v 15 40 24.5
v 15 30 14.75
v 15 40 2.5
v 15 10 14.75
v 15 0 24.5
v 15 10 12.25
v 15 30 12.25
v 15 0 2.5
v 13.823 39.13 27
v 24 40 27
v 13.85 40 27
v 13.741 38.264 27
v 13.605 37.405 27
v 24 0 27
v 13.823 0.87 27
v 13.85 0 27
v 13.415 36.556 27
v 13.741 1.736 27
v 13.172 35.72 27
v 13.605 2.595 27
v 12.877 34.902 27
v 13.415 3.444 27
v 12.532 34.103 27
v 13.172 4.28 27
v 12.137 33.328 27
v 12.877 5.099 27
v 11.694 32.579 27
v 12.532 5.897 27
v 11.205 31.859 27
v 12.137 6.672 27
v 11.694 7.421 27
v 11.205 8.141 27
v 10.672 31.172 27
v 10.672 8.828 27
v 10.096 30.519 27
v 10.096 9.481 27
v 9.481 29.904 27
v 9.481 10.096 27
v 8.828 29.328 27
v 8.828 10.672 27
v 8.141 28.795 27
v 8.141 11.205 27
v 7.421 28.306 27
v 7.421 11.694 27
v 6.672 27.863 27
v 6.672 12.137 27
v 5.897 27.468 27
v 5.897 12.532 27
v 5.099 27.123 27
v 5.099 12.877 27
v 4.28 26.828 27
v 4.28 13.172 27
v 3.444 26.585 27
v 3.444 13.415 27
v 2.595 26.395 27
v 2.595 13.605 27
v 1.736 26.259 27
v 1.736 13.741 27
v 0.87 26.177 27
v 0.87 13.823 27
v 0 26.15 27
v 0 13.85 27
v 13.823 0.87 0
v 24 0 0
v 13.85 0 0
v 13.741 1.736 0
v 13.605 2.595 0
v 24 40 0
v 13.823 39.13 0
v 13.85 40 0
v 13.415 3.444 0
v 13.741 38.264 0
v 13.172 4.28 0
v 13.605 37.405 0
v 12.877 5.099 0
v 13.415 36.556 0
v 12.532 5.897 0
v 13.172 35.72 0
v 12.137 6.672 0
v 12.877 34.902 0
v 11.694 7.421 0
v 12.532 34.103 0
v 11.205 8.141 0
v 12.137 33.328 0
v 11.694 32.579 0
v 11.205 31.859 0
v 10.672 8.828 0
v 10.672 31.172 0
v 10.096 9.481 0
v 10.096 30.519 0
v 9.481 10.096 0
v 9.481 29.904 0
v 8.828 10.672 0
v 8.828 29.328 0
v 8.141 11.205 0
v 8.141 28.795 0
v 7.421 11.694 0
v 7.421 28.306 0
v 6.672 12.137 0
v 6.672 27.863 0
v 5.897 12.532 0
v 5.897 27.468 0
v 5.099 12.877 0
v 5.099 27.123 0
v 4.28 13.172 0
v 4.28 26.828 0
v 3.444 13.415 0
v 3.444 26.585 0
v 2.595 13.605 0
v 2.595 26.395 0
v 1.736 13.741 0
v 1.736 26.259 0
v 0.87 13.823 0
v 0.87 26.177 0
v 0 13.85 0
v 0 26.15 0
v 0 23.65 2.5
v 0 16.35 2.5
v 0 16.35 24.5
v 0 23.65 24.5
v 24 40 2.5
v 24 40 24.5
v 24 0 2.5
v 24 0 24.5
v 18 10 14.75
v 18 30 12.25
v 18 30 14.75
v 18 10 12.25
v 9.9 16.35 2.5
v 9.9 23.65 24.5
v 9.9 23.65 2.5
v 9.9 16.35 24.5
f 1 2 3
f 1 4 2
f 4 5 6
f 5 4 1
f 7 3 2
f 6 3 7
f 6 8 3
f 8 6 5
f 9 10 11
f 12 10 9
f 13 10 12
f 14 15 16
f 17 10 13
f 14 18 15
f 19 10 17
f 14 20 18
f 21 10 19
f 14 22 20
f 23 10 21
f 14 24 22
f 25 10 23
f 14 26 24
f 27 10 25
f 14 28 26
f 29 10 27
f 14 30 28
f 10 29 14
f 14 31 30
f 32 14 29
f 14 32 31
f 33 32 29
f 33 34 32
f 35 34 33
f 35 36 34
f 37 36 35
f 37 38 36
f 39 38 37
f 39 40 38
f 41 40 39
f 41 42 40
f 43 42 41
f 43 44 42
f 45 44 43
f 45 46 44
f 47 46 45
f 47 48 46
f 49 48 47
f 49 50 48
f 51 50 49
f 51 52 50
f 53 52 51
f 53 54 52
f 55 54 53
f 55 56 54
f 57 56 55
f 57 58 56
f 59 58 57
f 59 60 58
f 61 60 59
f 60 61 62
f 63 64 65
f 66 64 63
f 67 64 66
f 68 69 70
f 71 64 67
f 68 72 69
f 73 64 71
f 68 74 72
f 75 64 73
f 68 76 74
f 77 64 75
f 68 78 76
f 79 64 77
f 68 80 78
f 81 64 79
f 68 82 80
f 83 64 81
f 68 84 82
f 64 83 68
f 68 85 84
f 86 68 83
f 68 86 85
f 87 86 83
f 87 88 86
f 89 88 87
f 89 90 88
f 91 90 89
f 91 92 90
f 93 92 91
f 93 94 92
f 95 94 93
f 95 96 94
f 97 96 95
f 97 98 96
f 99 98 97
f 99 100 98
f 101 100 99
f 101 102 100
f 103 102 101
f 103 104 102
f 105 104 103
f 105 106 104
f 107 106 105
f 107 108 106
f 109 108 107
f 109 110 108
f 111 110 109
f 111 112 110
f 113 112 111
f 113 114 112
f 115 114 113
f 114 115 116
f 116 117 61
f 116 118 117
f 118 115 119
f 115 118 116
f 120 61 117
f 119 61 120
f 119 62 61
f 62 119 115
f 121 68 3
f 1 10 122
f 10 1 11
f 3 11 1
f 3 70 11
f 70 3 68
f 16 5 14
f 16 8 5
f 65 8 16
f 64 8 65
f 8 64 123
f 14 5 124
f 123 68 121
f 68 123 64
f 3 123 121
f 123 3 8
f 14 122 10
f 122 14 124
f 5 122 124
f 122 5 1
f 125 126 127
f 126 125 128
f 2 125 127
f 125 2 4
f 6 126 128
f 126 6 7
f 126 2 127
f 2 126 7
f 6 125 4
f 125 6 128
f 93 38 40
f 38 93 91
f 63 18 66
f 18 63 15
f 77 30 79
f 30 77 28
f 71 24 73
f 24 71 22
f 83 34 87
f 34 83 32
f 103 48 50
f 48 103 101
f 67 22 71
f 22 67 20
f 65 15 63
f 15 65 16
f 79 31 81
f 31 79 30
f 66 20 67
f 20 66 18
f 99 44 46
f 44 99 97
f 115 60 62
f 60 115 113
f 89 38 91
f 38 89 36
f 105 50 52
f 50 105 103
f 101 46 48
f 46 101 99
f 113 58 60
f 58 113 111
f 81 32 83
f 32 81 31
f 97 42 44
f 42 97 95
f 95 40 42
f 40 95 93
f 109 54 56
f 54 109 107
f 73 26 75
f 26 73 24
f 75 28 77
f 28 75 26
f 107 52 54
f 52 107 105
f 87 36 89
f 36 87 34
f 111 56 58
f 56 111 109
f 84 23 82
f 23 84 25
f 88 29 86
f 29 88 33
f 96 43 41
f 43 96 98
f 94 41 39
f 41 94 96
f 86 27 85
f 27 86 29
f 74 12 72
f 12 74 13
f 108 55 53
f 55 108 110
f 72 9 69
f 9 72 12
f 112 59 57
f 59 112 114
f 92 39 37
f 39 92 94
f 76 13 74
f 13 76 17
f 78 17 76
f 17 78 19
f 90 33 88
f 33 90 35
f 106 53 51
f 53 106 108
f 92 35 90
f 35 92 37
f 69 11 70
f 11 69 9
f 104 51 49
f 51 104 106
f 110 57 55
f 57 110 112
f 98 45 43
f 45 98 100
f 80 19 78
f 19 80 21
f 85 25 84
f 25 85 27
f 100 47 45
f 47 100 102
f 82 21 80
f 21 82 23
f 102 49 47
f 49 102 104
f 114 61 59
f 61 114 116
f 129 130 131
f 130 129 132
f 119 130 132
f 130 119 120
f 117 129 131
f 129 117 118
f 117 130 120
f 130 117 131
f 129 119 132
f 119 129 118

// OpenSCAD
// a draft holder is work in progress

$fn = 100 ;
width = 40 ; 
length = 15 ;
height = 27 ;
holderH = 2.5 ;
pinH = 3 ;
pinW = 20 ;
holderDepth = 9 ;
bridgeW = 12.3 ;
insertDepth = 10 ;
cylD = (width - bridgeW) ;

difference(){
    union(){
        cube([length,width,height]);
        translate([length,0,0]) cube([holderDepth,width,holderH]);
        translate([length,0,height-holderH]) cube([holderDepth,width,holderH]);
        translate([length,(width-pinW)/2,(height-holderH)/2]) cube([pinH,pinW,holderH]);
    }
    translate ([0,0,-.1]) cylinder(h=height+.2,d=cylD);
    translate ([0,width,-.1]) cylinder(h=height+.2,d=cylD);
    translate([-.1,(cylD+2*holderH)/2,holderH]) cube([insertDepth,bridgeW-2*holderH,height-2*holderH]);
}
